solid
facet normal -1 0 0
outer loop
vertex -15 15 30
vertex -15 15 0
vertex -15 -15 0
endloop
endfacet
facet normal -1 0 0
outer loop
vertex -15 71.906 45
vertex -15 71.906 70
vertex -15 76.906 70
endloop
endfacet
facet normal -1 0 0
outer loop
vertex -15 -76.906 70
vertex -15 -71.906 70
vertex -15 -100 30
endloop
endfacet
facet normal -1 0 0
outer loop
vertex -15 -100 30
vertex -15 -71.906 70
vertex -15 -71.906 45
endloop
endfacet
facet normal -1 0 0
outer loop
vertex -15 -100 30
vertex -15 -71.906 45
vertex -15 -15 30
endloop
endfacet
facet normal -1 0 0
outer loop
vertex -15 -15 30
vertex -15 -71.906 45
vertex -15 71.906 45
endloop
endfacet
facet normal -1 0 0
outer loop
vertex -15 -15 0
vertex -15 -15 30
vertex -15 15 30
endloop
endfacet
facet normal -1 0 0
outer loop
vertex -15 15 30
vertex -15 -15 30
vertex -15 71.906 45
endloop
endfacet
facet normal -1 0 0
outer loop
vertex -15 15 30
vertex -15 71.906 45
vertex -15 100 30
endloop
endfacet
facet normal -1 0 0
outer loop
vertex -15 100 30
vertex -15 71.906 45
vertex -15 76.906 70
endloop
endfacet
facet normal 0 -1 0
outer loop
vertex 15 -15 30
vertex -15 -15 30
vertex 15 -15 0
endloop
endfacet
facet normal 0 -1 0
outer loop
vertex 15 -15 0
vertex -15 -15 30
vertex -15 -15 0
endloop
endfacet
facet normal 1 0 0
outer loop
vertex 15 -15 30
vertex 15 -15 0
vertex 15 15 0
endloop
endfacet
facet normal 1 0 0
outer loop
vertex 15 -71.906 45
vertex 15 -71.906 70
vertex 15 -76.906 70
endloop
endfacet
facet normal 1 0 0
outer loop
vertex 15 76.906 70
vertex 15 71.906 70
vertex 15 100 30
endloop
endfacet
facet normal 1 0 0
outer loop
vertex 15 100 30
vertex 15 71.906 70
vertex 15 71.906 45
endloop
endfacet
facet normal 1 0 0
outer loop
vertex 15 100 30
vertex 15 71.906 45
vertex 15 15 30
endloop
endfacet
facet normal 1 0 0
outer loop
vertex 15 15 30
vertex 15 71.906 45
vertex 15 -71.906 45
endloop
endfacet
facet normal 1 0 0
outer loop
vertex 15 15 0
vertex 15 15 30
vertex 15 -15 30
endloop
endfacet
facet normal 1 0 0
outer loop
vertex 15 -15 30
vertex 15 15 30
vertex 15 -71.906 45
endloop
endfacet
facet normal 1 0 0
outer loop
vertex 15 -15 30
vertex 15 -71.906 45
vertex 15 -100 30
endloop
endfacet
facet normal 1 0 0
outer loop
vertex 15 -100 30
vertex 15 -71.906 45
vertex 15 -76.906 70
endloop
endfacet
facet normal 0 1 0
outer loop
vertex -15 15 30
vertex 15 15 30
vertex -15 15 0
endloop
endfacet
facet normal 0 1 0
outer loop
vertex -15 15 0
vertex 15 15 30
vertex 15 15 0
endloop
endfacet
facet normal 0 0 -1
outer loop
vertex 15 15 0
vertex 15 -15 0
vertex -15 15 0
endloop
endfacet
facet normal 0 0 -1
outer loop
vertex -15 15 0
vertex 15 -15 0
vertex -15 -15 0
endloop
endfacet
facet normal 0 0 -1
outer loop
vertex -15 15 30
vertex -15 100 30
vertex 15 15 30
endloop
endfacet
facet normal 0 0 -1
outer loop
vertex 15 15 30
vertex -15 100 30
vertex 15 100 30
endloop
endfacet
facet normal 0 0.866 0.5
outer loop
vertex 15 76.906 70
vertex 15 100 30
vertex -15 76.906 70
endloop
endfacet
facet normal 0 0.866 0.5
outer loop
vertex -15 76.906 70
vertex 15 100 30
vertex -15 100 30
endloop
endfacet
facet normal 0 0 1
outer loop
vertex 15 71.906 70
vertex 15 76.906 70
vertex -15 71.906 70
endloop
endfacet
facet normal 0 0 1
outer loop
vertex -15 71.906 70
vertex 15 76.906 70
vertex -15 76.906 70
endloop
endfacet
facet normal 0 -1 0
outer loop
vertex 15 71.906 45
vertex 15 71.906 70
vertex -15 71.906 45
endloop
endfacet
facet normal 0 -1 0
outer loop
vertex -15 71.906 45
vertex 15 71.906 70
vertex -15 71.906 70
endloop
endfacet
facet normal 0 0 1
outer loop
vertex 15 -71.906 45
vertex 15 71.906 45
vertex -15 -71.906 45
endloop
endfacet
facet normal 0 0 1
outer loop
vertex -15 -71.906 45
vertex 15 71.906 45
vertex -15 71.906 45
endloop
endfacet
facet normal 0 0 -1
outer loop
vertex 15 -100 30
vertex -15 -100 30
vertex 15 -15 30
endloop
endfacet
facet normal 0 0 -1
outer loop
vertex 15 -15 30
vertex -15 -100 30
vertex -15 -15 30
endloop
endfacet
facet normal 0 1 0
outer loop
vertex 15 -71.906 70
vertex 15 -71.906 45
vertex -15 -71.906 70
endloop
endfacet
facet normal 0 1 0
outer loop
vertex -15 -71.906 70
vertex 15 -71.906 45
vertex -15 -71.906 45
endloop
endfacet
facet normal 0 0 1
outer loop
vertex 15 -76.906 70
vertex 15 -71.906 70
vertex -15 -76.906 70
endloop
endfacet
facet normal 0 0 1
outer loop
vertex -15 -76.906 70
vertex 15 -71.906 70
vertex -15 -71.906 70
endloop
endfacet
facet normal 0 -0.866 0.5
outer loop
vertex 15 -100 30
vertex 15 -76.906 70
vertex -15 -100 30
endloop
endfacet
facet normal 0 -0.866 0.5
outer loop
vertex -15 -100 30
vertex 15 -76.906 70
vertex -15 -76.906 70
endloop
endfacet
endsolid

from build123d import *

# Parameters (mm, degrees)
SKETCH1_W           = 30
SKETCH1_H           = 30
BOSS_EXTRUDE1_DEPTH = 30
BOSS_EXTRUDE2_DEPTH = 15


with BuildPart() as part:
    # Sketch1 → Boss-Extrude1 (new body)
    with BuildSketch(Plane.XY):
        Rectangle(SKETCH1_W, SKETCH1_H)
    extrude(amount=BOSS_EXTRUDE1_DEPTH)

    # Sketch2 → Boss-Extrude2 (add, symmetric)
    with BuildSketch(Plane(origin=(0, 0, 0), x_dir=(0, 0, -1), z_dir=(1, 0, 0))):
        Polygon((-30, 15), (-30, 100), (-70, 76.905989232), (-70, 71.905989232), (-45, 71.905989232), (-45, 0), (-30, 0), align=None)
    boss_extrude2 = extrude(amount=BOSS_EXTRUDE2_DEPTH, both=True)

    # Mirror1: Boss-Extrude2 across plane
    add(boss_extrude2.mirror(Plane.ZX))


solid = part.part
